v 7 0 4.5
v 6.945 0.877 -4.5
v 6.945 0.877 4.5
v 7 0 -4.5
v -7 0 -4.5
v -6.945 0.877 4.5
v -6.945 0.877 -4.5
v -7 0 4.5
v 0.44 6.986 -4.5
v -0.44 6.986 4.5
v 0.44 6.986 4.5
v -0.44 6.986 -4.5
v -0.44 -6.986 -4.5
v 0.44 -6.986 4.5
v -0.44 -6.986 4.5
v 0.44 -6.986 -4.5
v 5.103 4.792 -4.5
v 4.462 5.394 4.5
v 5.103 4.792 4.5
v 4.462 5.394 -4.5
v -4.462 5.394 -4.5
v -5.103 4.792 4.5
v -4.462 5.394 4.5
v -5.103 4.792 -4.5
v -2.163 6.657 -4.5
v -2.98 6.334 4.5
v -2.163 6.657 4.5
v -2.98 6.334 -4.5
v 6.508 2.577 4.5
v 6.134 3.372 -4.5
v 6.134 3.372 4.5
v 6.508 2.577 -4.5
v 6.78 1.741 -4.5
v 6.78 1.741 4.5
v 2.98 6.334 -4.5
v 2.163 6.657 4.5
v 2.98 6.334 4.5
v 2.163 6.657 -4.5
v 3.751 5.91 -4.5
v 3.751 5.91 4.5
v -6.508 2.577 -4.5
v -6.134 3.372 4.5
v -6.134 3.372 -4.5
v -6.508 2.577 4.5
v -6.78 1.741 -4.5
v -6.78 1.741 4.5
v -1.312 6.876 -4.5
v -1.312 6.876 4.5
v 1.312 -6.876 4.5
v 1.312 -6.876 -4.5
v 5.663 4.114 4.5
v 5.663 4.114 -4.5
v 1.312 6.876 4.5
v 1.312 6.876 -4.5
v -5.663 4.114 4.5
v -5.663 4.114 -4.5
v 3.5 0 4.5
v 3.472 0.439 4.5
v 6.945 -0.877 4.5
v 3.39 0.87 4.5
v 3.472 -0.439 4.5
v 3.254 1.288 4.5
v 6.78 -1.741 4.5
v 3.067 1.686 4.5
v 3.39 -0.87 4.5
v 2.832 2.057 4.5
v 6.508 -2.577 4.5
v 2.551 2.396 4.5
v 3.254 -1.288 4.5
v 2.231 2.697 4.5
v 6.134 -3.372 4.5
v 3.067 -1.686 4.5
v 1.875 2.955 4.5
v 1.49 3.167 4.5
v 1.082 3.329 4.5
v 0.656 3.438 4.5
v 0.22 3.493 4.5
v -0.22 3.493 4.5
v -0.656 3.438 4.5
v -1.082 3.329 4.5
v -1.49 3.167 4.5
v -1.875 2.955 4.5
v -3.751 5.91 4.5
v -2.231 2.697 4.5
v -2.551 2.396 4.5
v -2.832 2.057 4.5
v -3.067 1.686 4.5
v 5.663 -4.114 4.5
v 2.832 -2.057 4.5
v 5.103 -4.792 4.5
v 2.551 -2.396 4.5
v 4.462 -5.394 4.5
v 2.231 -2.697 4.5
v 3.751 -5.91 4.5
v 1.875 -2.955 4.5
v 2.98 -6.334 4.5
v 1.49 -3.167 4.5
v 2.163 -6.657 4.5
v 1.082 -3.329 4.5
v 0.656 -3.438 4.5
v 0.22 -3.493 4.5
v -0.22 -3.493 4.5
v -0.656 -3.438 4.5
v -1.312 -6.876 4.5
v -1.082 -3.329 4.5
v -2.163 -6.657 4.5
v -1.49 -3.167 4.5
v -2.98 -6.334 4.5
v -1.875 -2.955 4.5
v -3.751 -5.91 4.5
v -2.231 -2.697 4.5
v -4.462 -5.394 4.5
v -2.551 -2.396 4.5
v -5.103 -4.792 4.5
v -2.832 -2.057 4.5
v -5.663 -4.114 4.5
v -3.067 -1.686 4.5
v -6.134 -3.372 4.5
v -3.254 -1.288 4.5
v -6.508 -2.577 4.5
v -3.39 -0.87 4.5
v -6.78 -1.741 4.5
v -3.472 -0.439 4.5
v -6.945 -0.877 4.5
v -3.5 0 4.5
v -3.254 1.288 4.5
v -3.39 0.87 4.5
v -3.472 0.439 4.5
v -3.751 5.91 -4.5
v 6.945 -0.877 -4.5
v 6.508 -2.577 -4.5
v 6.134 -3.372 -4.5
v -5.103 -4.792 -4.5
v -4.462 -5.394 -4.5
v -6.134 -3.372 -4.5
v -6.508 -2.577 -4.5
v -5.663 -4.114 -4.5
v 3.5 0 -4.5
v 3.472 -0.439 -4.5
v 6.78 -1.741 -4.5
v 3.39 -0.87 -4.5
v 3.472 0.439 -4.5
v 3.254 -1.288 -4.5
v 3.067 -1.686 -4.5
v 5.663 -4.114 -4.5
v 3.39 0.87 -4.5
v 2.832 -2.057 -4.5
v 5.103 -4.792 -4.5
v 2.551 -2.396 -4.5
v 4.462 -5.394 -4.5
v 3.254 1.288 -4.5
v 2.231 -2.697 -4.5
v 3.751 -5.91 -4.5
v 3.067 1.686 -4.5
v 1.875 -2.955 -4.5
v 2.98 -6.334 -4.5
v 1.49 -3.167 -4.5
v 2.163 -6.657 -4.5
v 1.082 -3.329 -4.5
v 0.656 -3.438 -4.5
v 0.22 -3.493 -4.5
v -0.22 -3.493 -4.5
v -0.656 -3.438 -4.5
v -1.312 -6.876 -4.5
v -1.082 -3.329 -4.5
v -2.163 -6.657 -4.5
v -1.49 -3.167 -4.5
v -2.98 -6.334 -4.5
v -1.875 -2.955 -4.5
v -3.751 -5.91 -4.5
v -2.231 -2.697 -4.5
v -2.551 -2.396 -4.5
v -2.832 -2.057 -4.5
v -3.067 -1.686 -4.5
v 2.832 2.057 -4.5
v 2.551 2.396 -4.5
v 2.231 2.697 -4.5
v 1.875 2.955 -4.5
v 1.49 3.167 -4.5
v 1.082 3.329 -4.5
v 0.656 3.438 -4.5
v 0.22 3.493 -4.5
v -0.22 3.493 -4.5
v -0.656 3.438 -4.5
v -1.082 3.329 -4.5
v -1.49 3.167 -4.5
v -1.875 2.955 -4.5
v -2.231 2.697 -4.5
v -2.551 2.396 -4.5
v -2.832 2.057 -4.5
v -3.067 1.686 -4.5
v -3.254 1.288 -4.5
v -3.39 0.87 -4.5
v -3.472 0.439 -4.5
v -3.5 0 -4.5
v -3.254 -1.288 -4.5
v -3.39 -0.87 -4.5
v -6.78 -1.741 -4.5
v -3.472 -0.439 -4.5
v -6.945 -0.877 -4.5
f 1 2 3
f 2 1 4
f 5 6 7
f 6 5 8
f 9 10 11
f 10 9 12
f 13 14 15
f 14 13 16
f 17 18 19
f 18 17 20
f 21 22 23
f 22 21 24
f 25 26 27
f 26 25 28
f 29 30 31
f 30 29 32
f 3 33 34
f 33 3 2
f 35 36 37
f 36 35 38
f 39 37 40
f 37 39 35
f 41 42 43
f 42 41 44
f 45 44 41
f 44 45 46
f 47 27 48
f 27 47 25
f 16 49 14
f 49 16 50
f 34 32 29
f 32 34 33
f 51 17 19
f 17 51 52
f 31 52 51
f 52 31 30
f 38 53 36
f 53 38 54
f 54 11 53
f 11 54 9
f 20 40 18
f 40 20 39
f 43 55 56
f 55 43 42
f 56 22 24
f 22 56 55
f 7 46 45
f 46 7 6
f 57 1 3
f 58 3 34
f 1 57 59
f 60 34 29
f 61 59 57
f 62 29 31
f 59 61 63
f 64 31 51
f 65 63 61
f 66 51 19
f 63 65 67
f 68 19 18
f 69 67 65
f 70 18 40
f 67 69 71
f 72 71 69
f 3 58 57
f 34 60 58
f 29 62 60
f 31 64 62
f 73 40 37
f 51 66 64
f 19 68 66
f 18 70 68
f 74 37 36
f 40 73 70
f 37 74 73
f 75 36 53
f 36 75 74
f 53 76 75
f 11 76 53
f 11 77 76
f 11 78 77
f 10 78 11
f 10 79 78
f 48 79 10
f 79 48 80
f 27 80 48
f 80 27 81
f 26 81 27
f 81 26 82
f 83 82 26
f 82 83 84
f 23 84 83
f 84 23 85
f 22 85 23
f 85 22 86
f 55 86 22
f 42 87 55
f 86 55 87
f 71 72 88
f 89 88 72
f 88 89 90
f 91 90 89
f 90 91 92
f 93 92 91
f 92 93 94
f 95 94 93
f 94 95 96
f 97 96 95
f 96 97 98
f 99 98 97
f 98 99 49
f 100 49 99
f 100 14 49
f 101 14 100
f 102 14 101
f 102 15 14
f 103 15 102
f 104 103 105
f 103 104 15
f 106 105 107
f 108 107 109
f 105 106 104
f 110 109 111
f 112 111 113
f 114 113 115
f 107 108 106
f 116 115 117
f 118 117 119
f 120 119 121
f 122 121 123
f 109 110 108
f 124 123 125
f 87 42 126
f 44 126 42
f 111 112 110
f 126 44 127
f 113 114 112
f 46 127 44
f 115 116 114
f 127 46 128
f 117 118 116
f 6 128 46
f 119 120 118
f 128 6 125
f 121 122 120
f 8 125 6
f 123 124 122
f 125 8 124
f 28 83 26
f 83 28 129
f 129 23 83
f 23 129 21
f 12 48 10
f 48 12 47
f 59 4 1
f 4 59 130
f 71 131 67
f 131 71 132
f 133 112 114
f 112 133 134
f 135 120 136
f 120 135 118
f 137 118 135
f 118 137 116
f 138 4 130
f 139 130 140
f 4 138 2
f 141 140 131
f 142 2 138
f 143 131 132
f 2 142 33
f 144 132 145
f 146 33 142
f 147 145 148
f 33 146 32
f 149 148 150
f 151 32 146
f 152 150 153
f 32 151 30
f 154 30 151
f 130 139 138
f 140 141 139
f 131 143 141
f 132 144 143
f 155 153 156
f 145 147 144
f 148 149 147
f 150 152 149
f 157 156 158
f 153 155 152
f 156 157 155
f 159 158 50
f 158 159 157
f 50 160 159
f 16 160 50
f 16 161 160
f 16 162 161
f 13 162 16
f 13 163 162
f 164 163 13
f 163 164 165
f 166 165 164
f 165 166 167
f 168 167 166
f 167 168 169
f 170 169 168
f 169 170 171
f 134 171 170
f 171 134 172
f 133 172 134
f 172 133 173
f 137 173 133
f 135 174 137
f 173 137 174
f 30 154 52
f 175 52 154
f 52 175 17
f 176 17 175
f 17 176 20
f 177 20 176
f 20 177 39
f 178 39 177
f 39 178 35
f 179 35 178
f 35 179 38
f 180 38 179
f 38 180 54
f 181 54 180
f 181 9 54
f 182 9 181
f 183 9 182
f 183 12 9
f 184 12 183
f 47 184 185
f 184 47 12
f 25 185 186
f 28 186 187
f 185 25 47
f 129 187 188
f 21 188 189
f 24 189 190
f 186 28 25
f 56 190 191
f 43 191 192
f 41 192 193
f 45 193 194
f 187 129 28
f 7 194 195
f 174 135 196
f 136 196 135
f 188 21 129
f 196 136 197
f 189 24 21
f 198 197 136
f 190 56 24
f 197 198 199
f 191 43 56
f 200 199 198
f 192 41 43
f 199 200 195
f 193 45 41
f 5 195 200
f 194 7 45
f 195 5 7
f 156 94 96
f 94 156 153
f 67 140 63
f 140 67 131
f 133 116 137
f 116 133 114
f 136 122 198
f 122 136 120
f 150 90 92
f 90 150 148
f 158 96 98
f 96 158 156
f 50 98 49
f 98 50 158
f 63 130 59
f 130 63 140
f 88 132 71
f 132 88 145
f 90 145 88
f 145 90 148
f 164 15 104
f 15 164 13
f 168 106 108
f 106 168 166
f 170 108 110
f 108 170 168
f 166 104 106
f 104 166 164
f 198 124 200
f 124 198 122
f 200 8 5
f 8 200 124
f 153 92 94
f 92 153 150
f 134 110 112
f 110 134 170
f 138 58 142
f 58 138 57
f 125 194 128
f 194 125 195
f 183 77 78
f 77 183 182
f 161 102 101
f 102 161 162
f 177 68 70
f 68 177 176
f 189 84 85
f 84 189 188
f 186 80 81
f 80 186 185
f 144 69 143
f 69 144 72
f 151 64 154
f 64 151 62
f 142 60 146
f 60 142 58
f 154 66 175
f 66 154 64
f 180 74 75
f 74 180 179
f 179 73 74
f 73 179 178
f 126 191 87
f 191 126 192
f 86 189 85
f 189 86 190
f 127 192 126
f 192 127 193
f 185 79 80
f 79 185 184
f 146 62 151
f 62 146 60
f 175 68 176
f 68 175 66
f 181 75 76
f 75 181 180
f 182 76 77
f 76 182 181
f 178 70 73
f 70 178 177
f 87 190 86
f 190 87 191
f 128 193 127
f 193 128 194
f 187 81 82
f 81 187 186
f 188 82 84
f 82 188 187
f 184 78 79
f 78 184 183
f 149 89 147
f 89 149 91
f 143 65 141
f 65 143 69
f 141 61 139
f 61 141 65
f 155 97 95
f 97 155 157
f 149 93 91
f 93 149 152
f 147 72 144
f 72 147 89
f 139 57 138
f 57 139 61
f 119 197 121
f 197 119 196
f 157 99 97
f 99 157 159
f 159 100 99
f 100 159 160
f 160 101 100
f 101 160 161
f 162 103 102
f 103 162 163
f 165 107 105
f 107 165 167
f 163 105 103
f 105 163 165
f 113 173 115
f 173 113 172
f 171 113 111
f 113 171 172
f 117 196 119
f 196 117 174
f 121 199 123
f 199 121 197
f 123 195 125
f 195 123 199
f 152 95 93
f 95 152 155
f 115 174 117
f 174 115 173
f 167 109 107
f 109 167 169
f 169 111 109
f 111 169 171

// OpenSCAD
$fn = 50;


difference() {
	union() {
		translate(v = [0, 0, -4.5000000000]) {
			cylinder(h = 9, r = 7.0000000000);
		}
	}
	union() {
		translate(v = [0, 0, -100.0000000000]) {
			cylinder(h = 200, r = 3.5000000000);
		}
	}
}
